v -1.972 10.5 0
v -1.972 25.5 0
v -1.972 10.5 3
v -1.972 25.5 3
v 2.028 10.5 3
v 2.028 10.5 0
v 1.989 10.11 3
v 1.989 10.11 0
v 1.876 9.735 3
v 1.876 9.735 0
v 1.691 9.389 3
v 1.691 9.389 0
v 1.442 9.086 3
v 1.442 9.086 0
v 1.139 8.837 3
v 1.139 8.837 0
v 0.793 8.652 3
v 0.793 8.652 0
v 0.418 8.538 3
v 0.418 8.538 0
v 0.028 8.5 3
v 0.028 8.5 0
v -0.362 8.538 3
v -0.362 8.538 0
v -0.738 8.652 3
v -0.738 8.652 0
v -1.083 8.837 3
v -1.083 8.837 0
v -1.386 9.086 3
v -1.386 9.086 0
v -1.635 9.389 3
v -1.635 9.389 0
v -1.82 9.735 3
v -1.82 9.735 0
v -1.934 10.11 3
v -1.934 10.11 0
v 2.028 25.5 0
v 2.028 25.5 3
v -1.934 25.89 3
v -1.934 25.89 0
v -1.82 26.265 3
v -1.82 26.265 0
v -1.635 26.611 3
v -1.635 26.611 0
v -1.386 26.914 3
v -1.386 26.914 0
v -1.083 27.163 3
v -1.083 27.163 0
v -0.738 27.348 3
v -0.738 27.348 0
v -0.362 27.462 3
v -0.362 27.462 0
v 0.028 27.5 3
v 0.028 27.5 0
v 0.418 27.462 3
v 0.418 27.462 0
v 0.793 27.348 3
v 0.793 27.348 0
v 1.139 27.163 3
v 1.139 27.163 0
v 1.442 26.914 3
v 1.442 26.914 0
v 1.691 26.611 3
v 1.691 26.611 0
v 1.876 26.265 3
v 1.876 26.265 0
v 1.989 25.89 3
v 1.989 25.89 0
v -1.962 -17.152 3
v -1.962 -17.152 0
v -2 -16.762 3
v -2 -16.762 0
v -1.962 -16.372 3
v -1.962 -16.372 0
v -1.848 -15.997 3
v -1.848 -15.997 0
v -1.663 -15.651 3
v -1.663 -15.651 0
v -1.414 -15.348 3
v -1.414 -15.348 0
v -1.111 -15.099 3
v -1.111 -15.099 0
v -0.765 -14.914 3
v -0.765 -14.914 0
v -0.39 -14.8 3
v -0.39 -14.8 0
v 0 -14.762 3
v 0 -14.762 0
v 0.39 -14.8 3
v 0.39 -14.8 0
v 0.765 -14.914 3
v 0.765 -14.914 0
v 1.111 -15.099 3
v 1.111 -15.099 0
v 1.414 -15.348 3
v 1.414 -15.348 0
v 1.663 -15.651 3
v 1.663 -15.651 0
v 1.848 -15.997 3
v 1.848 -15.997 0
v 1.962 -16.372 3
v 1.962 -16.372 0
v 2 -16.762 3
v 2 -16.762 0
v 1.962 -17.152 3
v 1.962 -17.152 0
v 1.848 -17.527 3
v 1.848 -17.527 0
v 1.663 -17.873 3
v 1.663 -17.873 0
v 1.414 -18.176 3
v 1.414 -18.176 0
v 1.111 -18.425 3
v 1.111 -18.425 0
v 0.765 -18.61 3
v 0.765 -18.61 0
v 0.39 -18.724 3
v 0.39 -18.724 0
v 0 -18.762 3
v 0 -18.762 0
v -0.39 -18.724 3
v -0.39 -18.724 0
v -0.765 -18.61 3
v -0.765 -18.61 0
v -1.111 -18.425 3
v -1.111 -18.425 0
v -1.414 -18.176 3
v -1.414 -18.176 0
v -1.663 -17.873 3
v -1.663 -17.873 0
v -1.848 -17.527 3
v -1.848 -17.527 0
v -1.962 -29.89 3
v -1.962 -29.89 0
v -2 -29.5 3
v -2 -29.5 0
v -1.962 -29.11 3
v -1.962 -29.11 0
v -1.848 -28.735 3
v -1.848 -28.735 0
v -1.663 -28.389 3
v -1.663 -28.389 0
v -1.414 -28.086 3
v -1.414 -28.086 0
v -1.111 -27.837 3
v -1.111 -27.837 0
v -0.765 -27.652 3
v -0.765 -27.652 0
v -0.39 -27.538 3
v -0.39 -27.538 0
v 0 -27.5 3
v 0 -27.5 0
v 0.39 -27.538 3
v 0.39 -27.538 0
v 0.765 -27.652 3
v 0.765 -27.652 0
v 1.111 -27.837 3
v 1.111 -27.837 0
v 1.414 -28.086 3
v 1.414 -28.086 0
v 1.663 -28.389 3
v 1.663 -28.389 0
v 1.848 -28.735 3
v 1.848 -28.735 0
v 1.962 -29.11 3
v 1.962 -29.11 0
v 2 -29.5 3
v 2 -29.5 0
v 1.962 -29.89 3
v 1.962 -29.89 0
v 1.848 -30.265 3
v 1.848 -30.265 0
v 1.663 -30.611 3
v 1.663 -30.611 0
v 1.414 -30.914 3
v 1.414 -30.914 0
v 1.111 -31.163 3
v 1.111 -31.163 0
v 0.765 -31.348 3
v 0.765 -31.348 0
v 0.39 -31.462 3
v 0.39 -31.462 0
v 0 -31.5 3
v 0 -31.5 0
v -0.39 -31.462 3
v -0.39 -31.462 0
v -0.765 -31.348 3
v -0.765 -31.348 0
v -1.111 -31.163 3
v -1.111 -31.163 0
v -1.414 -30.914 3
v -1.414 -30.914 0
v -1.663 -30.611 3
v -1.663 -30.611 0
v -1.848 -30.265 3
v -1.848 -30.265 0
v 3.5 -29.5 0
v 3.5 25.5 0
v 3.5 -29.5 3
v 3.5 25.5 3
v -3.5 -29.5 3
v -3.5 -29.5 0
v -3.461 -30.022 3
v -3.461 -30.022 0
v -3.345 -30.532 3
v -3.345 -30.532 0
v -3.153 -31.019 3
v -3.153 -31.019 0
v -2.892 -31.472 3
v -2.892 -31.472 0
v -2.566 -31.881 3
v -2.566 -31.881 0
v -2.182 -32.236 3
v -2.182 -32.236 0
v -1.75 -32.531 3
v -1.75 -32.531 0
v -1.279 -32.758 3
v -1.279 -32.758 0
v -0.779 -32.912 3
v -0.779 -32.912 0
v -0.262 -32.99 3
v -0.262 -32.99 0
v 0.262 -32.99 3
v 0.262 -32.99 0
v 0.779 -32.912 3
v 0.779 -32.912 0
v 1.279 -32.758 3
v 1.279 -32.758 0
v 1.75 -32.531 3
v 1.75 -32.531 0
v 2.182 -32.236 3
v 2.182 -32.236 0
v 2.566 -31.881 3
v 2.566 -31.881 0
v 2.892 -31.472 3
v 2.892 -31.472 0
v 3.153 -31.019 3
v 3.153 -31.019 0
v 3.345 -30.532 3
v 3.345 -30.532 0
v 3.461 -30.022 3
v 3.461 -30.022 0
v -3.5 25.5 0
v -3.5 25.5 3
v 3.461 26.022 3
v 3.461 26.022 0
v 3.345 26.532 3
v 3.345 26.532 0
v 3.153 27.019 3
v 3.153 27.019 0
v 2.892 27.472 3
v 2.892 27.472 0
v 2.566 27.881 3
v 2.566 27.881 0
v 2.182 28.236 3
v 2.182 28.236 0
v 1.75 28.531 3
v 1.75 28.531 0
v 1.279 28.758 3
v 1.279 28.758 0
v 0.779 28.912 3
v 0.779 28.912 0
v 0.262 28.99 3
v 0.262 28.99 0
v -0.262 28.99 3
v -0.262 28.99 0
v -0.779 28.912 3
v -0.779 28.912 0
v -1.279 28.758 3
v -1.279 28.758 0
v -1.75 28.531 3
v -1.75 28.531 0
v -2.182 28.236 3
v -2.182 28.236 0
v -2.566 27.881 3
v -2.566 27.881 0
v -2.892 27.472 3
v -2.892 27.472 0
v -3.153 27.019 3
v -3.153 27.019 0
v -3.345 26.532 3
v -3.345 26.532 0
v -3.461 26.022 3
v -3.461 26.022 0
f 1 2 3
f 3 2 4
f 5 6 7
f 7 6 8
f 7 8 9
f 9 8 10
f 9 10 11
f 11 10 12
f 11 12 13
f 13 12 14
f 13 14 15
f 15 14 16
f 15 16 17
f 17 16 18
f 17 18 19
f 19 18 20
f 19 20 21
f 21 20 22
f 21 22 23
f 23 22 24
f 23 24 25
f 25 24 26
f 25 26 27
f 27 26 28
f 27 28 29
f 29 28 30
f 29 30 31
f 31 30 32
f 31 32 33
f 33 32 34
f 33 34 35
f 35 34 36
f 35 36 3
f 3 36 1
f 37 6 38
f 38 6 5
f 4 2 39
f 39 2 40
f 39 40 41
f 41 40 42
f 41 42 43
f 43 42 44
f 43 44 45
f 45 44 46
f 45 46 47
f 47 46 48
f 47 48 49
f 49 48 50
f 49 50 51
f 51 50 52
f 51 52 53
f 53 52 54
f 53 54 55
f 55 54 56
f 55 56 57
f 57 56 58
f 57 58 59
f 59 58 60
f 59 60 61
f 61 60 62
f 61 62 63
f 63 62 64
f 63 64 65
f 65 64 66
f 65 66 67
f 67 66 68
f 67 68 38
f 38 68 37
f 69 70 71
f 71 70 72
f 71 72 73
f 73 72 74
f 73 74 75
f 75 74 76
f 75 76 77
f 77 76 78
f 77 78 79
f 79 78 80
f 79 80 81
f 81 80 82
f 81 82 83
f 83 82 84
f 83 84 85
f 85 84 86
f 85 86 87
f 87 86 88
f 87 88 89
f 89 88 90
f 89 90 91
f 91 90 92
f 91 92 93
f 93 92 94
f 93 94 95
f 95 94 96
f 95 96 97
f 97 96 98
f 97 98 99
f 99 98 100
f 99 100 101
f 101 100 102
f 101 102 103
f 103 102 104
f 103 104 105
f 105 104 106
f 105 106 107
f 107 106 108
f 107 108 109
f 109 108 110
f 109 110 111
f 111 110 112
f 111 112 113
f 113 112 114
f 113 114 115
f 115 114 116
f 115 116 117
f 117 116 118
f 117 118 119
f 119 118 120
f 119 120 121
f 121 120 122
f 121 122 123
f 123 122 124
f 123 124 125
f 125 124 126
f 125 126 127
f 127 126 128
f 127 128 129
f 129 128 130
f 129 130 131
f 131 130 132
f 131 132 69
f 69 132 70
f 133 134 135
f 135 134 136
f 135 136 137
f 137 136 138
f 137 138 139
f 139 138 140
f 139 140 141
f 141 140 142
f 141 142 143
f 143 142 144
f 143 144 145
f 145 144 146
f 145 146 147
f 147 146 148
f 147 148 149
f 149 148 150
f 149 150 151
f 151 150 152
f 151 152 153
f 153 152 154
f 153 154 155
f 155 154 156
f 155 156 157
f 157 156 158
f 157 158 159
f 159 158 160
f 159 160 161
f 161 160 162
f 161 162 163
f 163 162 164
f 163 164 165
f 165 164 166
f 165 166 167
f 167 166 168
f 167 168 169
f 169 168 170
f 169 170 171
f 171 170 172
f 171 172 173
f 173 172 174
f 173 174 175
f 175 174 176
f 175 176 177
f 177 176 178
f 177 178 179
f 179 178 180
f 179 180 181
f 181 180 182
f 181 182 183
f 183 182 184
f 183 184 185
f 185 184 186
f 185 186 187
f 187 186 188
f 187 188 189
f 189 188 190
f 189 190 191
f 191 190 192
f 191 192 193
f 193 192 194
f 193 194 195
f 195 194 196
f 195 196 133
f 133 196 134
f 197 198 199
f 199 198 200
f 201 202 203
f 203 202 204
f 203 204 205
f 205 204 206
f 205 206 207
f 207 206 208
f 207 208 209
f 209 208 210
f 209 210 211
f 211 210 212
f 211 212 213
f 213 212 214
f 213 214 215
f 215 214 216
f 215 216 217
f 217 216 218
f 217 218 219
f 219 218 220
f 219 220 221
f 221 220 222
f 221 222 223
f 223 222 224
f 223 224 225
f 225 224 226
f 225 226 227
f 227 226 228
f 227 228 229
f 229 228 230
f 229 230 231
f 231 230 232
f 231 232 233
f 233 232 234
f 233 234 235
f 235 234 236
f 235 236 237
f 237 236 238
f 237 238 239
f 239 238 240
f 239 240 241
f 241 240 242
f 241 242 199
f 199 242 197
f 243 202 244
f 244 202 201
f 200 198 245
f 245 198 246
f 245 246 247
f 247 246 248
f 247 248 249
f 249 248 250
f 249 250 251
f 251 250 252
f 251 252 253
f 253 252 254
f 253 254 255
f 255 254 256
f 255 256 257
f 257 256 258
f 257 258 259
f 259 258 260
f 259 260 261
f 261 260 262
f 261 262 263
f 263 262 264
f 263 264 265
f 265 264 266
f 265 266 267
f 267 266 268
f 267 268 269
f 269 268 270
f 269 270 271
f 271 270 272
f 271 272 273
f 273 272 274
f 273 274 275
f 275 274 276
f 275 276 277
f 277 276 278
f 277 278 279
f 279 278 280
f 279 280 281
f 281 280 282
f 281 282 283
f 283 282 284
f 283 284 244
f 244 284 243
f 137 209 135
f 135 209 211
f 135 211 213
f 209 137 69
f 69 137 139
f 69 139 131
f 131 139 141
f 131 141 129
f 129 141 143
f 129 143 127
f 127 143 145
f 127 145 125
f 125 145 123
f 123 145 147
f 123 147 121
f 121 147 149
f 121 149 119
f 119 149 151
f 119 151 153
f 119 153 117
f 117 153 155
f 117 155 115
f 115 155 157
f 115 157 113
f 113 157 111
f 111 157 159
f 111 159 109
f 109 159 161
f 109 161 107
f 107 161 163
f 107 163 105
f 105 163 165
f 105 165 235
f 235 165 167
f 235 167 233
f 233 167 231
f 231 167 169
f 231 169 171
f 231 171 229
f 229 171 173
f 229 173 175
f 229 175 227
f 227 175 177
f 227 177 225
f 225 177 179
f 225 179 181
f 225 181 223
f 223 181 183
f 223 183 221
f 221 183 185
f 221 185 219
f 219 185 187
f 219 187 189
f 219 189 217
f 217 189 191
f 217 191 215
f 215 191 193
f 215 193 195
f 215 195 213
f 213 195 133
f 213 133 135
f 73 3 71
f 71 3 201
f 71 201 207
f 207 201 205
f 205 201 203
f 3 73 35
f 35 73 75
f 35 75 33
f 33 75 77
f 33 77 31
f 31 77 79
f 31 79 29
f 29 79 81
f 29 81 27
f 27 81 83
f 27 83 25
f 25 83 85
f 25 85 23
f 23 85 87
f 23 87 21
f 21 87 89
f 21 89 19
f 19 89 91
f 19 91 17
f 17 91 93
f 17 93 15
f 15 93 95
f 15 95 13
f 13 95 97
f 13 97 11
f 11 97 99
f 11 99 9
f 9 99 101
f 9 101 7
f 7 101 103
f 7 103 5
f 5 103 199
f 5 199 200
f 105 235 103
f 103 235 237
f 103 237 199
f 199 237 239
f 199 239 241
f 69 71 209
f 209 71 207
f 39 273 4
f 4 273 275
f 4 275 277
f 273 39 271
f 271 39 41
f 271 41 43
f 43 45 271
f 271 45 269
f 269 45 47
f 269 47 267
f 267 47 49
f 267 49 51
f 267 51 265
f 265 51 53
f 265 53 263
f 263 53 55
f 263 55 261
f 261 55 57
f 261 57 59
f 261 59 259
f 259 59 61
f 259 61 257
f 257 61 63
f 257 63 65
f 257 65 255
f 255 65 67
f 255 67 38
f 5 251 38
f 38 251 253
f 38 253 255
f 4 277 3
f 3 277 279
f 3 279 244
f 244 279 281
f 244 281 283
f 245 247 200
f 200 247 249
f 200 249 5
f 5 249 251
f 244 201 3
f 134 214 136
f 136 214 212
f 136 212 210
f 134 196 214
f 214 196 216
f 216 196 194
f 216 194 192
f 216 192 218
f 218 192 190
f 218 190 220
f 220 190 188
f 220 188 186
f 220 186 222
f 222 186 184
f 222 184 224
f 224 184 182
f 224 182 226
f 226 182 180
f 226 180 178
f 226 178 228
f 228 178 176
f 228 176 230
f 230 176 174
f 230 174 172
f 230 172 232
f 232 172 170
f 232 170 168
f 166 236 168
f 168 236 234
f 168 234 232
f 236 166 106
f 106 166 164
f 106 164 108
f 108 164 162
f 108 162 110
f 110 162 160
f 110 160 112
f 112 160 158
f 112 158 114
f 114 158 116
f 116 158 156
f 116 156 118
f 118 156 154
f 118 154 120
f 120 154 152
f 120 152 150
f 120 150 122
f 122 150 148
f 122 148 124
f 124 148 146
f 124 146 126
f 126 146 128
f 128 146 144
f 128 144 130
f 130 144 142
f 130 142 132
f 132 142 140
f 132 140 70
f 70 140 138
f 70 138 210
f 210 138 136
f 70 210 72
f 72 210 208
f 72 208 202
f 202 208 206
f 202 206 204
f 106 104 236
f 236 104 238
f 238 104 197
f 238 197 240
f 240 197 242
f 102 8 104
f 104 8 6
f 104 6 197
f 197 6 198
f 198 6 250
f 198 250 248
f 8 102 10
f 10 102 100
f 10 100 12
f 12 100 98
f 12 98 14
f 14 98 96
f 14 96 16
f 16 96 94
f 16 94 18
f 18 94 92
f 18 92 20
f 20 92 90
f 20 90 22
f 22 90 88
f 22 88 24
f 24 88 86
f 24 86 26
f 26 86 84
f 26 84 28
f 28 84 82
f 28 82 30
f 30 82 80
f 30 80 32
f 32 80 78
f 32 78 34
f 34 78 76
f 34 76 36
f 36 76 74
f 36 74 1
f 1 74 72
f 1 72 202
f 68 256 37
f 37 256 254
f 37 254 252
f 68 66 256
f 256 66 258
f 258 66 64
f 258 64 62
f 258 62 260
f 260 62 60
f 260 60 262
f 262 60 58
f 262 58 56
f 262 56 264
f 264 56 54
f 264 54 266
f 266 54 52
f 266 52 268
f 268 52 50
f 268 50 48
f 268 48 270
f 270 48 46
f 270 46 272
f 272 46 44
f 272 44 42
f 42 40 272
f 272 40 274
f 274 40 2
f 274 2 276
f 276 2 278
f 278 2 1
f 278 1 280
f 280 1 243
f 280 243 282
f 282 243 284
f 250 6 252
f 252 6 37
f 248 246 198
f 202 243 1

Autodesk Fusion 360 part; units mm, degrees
sketch "Boceto1" plane through (0, 0, 0) normal (0, 0, 1) x (1, 0, 0)
  line L0 (-25.6714, 0) -> (25.6714, 0) construction
  line L1 (0, -23) -> (0, 29) construction
  line L2 (-3.5, 21.001) -> (3.5, 21.001) construction
  line L3 (-4, 25.5) -> (4, 25.5) construction
  arc A0 (3.5, 25.5) -> (-3.5, 25.5) centre (0, 25.5) ccw
  line L4 (-3.5, 25.5) -> (-3.5, -29.5)
  line L5 (3.5, 25.5) -> (3.5, -29.5)
  line L6 (-4, -29.5) -> (4, -29.5) construction
  arc A1 (-3.5, -29.5) -> (3.5, -29.5) centre (0, -29.5) ccw
  circle A2 centre (0, -29.5) radius 2
  circle A3 centre (0, -16.762) radius 2
  line L7 (-1.9722, 25.5) -> (-1.9722, 10.5)
  line L8 (2.0278, 25.5) -> (2.0278, 10.5)
  arc A4 (2.0278, 25.5) -> (-1.9722, 25.5) centre (0.0278, 25.5) ccw
  arc A5 (-1.9722, 10.5) -> (2.0278, 10.5) centre (0.0278, 10.5) ccw
  point P0 (-3.5, 0)
  point P1 (3.5, -0.1376)
  point P2 (0, 21.001)
  point P3 (0, 21.001)
  point P4 (0, -33)
  dimension "d4" = 7
  dimension "d6" = 4
  dimension "d7" = 4
  dimension "d8" = 12.738
  dimension "d9" = 15
  dimension "d10" = 15
  dimension "d11" = 4
  dimension "d14" = 55
  dimension "d15" = 62
extrude "Extruir1" add sketch "Boceto1" along normal blind 3
